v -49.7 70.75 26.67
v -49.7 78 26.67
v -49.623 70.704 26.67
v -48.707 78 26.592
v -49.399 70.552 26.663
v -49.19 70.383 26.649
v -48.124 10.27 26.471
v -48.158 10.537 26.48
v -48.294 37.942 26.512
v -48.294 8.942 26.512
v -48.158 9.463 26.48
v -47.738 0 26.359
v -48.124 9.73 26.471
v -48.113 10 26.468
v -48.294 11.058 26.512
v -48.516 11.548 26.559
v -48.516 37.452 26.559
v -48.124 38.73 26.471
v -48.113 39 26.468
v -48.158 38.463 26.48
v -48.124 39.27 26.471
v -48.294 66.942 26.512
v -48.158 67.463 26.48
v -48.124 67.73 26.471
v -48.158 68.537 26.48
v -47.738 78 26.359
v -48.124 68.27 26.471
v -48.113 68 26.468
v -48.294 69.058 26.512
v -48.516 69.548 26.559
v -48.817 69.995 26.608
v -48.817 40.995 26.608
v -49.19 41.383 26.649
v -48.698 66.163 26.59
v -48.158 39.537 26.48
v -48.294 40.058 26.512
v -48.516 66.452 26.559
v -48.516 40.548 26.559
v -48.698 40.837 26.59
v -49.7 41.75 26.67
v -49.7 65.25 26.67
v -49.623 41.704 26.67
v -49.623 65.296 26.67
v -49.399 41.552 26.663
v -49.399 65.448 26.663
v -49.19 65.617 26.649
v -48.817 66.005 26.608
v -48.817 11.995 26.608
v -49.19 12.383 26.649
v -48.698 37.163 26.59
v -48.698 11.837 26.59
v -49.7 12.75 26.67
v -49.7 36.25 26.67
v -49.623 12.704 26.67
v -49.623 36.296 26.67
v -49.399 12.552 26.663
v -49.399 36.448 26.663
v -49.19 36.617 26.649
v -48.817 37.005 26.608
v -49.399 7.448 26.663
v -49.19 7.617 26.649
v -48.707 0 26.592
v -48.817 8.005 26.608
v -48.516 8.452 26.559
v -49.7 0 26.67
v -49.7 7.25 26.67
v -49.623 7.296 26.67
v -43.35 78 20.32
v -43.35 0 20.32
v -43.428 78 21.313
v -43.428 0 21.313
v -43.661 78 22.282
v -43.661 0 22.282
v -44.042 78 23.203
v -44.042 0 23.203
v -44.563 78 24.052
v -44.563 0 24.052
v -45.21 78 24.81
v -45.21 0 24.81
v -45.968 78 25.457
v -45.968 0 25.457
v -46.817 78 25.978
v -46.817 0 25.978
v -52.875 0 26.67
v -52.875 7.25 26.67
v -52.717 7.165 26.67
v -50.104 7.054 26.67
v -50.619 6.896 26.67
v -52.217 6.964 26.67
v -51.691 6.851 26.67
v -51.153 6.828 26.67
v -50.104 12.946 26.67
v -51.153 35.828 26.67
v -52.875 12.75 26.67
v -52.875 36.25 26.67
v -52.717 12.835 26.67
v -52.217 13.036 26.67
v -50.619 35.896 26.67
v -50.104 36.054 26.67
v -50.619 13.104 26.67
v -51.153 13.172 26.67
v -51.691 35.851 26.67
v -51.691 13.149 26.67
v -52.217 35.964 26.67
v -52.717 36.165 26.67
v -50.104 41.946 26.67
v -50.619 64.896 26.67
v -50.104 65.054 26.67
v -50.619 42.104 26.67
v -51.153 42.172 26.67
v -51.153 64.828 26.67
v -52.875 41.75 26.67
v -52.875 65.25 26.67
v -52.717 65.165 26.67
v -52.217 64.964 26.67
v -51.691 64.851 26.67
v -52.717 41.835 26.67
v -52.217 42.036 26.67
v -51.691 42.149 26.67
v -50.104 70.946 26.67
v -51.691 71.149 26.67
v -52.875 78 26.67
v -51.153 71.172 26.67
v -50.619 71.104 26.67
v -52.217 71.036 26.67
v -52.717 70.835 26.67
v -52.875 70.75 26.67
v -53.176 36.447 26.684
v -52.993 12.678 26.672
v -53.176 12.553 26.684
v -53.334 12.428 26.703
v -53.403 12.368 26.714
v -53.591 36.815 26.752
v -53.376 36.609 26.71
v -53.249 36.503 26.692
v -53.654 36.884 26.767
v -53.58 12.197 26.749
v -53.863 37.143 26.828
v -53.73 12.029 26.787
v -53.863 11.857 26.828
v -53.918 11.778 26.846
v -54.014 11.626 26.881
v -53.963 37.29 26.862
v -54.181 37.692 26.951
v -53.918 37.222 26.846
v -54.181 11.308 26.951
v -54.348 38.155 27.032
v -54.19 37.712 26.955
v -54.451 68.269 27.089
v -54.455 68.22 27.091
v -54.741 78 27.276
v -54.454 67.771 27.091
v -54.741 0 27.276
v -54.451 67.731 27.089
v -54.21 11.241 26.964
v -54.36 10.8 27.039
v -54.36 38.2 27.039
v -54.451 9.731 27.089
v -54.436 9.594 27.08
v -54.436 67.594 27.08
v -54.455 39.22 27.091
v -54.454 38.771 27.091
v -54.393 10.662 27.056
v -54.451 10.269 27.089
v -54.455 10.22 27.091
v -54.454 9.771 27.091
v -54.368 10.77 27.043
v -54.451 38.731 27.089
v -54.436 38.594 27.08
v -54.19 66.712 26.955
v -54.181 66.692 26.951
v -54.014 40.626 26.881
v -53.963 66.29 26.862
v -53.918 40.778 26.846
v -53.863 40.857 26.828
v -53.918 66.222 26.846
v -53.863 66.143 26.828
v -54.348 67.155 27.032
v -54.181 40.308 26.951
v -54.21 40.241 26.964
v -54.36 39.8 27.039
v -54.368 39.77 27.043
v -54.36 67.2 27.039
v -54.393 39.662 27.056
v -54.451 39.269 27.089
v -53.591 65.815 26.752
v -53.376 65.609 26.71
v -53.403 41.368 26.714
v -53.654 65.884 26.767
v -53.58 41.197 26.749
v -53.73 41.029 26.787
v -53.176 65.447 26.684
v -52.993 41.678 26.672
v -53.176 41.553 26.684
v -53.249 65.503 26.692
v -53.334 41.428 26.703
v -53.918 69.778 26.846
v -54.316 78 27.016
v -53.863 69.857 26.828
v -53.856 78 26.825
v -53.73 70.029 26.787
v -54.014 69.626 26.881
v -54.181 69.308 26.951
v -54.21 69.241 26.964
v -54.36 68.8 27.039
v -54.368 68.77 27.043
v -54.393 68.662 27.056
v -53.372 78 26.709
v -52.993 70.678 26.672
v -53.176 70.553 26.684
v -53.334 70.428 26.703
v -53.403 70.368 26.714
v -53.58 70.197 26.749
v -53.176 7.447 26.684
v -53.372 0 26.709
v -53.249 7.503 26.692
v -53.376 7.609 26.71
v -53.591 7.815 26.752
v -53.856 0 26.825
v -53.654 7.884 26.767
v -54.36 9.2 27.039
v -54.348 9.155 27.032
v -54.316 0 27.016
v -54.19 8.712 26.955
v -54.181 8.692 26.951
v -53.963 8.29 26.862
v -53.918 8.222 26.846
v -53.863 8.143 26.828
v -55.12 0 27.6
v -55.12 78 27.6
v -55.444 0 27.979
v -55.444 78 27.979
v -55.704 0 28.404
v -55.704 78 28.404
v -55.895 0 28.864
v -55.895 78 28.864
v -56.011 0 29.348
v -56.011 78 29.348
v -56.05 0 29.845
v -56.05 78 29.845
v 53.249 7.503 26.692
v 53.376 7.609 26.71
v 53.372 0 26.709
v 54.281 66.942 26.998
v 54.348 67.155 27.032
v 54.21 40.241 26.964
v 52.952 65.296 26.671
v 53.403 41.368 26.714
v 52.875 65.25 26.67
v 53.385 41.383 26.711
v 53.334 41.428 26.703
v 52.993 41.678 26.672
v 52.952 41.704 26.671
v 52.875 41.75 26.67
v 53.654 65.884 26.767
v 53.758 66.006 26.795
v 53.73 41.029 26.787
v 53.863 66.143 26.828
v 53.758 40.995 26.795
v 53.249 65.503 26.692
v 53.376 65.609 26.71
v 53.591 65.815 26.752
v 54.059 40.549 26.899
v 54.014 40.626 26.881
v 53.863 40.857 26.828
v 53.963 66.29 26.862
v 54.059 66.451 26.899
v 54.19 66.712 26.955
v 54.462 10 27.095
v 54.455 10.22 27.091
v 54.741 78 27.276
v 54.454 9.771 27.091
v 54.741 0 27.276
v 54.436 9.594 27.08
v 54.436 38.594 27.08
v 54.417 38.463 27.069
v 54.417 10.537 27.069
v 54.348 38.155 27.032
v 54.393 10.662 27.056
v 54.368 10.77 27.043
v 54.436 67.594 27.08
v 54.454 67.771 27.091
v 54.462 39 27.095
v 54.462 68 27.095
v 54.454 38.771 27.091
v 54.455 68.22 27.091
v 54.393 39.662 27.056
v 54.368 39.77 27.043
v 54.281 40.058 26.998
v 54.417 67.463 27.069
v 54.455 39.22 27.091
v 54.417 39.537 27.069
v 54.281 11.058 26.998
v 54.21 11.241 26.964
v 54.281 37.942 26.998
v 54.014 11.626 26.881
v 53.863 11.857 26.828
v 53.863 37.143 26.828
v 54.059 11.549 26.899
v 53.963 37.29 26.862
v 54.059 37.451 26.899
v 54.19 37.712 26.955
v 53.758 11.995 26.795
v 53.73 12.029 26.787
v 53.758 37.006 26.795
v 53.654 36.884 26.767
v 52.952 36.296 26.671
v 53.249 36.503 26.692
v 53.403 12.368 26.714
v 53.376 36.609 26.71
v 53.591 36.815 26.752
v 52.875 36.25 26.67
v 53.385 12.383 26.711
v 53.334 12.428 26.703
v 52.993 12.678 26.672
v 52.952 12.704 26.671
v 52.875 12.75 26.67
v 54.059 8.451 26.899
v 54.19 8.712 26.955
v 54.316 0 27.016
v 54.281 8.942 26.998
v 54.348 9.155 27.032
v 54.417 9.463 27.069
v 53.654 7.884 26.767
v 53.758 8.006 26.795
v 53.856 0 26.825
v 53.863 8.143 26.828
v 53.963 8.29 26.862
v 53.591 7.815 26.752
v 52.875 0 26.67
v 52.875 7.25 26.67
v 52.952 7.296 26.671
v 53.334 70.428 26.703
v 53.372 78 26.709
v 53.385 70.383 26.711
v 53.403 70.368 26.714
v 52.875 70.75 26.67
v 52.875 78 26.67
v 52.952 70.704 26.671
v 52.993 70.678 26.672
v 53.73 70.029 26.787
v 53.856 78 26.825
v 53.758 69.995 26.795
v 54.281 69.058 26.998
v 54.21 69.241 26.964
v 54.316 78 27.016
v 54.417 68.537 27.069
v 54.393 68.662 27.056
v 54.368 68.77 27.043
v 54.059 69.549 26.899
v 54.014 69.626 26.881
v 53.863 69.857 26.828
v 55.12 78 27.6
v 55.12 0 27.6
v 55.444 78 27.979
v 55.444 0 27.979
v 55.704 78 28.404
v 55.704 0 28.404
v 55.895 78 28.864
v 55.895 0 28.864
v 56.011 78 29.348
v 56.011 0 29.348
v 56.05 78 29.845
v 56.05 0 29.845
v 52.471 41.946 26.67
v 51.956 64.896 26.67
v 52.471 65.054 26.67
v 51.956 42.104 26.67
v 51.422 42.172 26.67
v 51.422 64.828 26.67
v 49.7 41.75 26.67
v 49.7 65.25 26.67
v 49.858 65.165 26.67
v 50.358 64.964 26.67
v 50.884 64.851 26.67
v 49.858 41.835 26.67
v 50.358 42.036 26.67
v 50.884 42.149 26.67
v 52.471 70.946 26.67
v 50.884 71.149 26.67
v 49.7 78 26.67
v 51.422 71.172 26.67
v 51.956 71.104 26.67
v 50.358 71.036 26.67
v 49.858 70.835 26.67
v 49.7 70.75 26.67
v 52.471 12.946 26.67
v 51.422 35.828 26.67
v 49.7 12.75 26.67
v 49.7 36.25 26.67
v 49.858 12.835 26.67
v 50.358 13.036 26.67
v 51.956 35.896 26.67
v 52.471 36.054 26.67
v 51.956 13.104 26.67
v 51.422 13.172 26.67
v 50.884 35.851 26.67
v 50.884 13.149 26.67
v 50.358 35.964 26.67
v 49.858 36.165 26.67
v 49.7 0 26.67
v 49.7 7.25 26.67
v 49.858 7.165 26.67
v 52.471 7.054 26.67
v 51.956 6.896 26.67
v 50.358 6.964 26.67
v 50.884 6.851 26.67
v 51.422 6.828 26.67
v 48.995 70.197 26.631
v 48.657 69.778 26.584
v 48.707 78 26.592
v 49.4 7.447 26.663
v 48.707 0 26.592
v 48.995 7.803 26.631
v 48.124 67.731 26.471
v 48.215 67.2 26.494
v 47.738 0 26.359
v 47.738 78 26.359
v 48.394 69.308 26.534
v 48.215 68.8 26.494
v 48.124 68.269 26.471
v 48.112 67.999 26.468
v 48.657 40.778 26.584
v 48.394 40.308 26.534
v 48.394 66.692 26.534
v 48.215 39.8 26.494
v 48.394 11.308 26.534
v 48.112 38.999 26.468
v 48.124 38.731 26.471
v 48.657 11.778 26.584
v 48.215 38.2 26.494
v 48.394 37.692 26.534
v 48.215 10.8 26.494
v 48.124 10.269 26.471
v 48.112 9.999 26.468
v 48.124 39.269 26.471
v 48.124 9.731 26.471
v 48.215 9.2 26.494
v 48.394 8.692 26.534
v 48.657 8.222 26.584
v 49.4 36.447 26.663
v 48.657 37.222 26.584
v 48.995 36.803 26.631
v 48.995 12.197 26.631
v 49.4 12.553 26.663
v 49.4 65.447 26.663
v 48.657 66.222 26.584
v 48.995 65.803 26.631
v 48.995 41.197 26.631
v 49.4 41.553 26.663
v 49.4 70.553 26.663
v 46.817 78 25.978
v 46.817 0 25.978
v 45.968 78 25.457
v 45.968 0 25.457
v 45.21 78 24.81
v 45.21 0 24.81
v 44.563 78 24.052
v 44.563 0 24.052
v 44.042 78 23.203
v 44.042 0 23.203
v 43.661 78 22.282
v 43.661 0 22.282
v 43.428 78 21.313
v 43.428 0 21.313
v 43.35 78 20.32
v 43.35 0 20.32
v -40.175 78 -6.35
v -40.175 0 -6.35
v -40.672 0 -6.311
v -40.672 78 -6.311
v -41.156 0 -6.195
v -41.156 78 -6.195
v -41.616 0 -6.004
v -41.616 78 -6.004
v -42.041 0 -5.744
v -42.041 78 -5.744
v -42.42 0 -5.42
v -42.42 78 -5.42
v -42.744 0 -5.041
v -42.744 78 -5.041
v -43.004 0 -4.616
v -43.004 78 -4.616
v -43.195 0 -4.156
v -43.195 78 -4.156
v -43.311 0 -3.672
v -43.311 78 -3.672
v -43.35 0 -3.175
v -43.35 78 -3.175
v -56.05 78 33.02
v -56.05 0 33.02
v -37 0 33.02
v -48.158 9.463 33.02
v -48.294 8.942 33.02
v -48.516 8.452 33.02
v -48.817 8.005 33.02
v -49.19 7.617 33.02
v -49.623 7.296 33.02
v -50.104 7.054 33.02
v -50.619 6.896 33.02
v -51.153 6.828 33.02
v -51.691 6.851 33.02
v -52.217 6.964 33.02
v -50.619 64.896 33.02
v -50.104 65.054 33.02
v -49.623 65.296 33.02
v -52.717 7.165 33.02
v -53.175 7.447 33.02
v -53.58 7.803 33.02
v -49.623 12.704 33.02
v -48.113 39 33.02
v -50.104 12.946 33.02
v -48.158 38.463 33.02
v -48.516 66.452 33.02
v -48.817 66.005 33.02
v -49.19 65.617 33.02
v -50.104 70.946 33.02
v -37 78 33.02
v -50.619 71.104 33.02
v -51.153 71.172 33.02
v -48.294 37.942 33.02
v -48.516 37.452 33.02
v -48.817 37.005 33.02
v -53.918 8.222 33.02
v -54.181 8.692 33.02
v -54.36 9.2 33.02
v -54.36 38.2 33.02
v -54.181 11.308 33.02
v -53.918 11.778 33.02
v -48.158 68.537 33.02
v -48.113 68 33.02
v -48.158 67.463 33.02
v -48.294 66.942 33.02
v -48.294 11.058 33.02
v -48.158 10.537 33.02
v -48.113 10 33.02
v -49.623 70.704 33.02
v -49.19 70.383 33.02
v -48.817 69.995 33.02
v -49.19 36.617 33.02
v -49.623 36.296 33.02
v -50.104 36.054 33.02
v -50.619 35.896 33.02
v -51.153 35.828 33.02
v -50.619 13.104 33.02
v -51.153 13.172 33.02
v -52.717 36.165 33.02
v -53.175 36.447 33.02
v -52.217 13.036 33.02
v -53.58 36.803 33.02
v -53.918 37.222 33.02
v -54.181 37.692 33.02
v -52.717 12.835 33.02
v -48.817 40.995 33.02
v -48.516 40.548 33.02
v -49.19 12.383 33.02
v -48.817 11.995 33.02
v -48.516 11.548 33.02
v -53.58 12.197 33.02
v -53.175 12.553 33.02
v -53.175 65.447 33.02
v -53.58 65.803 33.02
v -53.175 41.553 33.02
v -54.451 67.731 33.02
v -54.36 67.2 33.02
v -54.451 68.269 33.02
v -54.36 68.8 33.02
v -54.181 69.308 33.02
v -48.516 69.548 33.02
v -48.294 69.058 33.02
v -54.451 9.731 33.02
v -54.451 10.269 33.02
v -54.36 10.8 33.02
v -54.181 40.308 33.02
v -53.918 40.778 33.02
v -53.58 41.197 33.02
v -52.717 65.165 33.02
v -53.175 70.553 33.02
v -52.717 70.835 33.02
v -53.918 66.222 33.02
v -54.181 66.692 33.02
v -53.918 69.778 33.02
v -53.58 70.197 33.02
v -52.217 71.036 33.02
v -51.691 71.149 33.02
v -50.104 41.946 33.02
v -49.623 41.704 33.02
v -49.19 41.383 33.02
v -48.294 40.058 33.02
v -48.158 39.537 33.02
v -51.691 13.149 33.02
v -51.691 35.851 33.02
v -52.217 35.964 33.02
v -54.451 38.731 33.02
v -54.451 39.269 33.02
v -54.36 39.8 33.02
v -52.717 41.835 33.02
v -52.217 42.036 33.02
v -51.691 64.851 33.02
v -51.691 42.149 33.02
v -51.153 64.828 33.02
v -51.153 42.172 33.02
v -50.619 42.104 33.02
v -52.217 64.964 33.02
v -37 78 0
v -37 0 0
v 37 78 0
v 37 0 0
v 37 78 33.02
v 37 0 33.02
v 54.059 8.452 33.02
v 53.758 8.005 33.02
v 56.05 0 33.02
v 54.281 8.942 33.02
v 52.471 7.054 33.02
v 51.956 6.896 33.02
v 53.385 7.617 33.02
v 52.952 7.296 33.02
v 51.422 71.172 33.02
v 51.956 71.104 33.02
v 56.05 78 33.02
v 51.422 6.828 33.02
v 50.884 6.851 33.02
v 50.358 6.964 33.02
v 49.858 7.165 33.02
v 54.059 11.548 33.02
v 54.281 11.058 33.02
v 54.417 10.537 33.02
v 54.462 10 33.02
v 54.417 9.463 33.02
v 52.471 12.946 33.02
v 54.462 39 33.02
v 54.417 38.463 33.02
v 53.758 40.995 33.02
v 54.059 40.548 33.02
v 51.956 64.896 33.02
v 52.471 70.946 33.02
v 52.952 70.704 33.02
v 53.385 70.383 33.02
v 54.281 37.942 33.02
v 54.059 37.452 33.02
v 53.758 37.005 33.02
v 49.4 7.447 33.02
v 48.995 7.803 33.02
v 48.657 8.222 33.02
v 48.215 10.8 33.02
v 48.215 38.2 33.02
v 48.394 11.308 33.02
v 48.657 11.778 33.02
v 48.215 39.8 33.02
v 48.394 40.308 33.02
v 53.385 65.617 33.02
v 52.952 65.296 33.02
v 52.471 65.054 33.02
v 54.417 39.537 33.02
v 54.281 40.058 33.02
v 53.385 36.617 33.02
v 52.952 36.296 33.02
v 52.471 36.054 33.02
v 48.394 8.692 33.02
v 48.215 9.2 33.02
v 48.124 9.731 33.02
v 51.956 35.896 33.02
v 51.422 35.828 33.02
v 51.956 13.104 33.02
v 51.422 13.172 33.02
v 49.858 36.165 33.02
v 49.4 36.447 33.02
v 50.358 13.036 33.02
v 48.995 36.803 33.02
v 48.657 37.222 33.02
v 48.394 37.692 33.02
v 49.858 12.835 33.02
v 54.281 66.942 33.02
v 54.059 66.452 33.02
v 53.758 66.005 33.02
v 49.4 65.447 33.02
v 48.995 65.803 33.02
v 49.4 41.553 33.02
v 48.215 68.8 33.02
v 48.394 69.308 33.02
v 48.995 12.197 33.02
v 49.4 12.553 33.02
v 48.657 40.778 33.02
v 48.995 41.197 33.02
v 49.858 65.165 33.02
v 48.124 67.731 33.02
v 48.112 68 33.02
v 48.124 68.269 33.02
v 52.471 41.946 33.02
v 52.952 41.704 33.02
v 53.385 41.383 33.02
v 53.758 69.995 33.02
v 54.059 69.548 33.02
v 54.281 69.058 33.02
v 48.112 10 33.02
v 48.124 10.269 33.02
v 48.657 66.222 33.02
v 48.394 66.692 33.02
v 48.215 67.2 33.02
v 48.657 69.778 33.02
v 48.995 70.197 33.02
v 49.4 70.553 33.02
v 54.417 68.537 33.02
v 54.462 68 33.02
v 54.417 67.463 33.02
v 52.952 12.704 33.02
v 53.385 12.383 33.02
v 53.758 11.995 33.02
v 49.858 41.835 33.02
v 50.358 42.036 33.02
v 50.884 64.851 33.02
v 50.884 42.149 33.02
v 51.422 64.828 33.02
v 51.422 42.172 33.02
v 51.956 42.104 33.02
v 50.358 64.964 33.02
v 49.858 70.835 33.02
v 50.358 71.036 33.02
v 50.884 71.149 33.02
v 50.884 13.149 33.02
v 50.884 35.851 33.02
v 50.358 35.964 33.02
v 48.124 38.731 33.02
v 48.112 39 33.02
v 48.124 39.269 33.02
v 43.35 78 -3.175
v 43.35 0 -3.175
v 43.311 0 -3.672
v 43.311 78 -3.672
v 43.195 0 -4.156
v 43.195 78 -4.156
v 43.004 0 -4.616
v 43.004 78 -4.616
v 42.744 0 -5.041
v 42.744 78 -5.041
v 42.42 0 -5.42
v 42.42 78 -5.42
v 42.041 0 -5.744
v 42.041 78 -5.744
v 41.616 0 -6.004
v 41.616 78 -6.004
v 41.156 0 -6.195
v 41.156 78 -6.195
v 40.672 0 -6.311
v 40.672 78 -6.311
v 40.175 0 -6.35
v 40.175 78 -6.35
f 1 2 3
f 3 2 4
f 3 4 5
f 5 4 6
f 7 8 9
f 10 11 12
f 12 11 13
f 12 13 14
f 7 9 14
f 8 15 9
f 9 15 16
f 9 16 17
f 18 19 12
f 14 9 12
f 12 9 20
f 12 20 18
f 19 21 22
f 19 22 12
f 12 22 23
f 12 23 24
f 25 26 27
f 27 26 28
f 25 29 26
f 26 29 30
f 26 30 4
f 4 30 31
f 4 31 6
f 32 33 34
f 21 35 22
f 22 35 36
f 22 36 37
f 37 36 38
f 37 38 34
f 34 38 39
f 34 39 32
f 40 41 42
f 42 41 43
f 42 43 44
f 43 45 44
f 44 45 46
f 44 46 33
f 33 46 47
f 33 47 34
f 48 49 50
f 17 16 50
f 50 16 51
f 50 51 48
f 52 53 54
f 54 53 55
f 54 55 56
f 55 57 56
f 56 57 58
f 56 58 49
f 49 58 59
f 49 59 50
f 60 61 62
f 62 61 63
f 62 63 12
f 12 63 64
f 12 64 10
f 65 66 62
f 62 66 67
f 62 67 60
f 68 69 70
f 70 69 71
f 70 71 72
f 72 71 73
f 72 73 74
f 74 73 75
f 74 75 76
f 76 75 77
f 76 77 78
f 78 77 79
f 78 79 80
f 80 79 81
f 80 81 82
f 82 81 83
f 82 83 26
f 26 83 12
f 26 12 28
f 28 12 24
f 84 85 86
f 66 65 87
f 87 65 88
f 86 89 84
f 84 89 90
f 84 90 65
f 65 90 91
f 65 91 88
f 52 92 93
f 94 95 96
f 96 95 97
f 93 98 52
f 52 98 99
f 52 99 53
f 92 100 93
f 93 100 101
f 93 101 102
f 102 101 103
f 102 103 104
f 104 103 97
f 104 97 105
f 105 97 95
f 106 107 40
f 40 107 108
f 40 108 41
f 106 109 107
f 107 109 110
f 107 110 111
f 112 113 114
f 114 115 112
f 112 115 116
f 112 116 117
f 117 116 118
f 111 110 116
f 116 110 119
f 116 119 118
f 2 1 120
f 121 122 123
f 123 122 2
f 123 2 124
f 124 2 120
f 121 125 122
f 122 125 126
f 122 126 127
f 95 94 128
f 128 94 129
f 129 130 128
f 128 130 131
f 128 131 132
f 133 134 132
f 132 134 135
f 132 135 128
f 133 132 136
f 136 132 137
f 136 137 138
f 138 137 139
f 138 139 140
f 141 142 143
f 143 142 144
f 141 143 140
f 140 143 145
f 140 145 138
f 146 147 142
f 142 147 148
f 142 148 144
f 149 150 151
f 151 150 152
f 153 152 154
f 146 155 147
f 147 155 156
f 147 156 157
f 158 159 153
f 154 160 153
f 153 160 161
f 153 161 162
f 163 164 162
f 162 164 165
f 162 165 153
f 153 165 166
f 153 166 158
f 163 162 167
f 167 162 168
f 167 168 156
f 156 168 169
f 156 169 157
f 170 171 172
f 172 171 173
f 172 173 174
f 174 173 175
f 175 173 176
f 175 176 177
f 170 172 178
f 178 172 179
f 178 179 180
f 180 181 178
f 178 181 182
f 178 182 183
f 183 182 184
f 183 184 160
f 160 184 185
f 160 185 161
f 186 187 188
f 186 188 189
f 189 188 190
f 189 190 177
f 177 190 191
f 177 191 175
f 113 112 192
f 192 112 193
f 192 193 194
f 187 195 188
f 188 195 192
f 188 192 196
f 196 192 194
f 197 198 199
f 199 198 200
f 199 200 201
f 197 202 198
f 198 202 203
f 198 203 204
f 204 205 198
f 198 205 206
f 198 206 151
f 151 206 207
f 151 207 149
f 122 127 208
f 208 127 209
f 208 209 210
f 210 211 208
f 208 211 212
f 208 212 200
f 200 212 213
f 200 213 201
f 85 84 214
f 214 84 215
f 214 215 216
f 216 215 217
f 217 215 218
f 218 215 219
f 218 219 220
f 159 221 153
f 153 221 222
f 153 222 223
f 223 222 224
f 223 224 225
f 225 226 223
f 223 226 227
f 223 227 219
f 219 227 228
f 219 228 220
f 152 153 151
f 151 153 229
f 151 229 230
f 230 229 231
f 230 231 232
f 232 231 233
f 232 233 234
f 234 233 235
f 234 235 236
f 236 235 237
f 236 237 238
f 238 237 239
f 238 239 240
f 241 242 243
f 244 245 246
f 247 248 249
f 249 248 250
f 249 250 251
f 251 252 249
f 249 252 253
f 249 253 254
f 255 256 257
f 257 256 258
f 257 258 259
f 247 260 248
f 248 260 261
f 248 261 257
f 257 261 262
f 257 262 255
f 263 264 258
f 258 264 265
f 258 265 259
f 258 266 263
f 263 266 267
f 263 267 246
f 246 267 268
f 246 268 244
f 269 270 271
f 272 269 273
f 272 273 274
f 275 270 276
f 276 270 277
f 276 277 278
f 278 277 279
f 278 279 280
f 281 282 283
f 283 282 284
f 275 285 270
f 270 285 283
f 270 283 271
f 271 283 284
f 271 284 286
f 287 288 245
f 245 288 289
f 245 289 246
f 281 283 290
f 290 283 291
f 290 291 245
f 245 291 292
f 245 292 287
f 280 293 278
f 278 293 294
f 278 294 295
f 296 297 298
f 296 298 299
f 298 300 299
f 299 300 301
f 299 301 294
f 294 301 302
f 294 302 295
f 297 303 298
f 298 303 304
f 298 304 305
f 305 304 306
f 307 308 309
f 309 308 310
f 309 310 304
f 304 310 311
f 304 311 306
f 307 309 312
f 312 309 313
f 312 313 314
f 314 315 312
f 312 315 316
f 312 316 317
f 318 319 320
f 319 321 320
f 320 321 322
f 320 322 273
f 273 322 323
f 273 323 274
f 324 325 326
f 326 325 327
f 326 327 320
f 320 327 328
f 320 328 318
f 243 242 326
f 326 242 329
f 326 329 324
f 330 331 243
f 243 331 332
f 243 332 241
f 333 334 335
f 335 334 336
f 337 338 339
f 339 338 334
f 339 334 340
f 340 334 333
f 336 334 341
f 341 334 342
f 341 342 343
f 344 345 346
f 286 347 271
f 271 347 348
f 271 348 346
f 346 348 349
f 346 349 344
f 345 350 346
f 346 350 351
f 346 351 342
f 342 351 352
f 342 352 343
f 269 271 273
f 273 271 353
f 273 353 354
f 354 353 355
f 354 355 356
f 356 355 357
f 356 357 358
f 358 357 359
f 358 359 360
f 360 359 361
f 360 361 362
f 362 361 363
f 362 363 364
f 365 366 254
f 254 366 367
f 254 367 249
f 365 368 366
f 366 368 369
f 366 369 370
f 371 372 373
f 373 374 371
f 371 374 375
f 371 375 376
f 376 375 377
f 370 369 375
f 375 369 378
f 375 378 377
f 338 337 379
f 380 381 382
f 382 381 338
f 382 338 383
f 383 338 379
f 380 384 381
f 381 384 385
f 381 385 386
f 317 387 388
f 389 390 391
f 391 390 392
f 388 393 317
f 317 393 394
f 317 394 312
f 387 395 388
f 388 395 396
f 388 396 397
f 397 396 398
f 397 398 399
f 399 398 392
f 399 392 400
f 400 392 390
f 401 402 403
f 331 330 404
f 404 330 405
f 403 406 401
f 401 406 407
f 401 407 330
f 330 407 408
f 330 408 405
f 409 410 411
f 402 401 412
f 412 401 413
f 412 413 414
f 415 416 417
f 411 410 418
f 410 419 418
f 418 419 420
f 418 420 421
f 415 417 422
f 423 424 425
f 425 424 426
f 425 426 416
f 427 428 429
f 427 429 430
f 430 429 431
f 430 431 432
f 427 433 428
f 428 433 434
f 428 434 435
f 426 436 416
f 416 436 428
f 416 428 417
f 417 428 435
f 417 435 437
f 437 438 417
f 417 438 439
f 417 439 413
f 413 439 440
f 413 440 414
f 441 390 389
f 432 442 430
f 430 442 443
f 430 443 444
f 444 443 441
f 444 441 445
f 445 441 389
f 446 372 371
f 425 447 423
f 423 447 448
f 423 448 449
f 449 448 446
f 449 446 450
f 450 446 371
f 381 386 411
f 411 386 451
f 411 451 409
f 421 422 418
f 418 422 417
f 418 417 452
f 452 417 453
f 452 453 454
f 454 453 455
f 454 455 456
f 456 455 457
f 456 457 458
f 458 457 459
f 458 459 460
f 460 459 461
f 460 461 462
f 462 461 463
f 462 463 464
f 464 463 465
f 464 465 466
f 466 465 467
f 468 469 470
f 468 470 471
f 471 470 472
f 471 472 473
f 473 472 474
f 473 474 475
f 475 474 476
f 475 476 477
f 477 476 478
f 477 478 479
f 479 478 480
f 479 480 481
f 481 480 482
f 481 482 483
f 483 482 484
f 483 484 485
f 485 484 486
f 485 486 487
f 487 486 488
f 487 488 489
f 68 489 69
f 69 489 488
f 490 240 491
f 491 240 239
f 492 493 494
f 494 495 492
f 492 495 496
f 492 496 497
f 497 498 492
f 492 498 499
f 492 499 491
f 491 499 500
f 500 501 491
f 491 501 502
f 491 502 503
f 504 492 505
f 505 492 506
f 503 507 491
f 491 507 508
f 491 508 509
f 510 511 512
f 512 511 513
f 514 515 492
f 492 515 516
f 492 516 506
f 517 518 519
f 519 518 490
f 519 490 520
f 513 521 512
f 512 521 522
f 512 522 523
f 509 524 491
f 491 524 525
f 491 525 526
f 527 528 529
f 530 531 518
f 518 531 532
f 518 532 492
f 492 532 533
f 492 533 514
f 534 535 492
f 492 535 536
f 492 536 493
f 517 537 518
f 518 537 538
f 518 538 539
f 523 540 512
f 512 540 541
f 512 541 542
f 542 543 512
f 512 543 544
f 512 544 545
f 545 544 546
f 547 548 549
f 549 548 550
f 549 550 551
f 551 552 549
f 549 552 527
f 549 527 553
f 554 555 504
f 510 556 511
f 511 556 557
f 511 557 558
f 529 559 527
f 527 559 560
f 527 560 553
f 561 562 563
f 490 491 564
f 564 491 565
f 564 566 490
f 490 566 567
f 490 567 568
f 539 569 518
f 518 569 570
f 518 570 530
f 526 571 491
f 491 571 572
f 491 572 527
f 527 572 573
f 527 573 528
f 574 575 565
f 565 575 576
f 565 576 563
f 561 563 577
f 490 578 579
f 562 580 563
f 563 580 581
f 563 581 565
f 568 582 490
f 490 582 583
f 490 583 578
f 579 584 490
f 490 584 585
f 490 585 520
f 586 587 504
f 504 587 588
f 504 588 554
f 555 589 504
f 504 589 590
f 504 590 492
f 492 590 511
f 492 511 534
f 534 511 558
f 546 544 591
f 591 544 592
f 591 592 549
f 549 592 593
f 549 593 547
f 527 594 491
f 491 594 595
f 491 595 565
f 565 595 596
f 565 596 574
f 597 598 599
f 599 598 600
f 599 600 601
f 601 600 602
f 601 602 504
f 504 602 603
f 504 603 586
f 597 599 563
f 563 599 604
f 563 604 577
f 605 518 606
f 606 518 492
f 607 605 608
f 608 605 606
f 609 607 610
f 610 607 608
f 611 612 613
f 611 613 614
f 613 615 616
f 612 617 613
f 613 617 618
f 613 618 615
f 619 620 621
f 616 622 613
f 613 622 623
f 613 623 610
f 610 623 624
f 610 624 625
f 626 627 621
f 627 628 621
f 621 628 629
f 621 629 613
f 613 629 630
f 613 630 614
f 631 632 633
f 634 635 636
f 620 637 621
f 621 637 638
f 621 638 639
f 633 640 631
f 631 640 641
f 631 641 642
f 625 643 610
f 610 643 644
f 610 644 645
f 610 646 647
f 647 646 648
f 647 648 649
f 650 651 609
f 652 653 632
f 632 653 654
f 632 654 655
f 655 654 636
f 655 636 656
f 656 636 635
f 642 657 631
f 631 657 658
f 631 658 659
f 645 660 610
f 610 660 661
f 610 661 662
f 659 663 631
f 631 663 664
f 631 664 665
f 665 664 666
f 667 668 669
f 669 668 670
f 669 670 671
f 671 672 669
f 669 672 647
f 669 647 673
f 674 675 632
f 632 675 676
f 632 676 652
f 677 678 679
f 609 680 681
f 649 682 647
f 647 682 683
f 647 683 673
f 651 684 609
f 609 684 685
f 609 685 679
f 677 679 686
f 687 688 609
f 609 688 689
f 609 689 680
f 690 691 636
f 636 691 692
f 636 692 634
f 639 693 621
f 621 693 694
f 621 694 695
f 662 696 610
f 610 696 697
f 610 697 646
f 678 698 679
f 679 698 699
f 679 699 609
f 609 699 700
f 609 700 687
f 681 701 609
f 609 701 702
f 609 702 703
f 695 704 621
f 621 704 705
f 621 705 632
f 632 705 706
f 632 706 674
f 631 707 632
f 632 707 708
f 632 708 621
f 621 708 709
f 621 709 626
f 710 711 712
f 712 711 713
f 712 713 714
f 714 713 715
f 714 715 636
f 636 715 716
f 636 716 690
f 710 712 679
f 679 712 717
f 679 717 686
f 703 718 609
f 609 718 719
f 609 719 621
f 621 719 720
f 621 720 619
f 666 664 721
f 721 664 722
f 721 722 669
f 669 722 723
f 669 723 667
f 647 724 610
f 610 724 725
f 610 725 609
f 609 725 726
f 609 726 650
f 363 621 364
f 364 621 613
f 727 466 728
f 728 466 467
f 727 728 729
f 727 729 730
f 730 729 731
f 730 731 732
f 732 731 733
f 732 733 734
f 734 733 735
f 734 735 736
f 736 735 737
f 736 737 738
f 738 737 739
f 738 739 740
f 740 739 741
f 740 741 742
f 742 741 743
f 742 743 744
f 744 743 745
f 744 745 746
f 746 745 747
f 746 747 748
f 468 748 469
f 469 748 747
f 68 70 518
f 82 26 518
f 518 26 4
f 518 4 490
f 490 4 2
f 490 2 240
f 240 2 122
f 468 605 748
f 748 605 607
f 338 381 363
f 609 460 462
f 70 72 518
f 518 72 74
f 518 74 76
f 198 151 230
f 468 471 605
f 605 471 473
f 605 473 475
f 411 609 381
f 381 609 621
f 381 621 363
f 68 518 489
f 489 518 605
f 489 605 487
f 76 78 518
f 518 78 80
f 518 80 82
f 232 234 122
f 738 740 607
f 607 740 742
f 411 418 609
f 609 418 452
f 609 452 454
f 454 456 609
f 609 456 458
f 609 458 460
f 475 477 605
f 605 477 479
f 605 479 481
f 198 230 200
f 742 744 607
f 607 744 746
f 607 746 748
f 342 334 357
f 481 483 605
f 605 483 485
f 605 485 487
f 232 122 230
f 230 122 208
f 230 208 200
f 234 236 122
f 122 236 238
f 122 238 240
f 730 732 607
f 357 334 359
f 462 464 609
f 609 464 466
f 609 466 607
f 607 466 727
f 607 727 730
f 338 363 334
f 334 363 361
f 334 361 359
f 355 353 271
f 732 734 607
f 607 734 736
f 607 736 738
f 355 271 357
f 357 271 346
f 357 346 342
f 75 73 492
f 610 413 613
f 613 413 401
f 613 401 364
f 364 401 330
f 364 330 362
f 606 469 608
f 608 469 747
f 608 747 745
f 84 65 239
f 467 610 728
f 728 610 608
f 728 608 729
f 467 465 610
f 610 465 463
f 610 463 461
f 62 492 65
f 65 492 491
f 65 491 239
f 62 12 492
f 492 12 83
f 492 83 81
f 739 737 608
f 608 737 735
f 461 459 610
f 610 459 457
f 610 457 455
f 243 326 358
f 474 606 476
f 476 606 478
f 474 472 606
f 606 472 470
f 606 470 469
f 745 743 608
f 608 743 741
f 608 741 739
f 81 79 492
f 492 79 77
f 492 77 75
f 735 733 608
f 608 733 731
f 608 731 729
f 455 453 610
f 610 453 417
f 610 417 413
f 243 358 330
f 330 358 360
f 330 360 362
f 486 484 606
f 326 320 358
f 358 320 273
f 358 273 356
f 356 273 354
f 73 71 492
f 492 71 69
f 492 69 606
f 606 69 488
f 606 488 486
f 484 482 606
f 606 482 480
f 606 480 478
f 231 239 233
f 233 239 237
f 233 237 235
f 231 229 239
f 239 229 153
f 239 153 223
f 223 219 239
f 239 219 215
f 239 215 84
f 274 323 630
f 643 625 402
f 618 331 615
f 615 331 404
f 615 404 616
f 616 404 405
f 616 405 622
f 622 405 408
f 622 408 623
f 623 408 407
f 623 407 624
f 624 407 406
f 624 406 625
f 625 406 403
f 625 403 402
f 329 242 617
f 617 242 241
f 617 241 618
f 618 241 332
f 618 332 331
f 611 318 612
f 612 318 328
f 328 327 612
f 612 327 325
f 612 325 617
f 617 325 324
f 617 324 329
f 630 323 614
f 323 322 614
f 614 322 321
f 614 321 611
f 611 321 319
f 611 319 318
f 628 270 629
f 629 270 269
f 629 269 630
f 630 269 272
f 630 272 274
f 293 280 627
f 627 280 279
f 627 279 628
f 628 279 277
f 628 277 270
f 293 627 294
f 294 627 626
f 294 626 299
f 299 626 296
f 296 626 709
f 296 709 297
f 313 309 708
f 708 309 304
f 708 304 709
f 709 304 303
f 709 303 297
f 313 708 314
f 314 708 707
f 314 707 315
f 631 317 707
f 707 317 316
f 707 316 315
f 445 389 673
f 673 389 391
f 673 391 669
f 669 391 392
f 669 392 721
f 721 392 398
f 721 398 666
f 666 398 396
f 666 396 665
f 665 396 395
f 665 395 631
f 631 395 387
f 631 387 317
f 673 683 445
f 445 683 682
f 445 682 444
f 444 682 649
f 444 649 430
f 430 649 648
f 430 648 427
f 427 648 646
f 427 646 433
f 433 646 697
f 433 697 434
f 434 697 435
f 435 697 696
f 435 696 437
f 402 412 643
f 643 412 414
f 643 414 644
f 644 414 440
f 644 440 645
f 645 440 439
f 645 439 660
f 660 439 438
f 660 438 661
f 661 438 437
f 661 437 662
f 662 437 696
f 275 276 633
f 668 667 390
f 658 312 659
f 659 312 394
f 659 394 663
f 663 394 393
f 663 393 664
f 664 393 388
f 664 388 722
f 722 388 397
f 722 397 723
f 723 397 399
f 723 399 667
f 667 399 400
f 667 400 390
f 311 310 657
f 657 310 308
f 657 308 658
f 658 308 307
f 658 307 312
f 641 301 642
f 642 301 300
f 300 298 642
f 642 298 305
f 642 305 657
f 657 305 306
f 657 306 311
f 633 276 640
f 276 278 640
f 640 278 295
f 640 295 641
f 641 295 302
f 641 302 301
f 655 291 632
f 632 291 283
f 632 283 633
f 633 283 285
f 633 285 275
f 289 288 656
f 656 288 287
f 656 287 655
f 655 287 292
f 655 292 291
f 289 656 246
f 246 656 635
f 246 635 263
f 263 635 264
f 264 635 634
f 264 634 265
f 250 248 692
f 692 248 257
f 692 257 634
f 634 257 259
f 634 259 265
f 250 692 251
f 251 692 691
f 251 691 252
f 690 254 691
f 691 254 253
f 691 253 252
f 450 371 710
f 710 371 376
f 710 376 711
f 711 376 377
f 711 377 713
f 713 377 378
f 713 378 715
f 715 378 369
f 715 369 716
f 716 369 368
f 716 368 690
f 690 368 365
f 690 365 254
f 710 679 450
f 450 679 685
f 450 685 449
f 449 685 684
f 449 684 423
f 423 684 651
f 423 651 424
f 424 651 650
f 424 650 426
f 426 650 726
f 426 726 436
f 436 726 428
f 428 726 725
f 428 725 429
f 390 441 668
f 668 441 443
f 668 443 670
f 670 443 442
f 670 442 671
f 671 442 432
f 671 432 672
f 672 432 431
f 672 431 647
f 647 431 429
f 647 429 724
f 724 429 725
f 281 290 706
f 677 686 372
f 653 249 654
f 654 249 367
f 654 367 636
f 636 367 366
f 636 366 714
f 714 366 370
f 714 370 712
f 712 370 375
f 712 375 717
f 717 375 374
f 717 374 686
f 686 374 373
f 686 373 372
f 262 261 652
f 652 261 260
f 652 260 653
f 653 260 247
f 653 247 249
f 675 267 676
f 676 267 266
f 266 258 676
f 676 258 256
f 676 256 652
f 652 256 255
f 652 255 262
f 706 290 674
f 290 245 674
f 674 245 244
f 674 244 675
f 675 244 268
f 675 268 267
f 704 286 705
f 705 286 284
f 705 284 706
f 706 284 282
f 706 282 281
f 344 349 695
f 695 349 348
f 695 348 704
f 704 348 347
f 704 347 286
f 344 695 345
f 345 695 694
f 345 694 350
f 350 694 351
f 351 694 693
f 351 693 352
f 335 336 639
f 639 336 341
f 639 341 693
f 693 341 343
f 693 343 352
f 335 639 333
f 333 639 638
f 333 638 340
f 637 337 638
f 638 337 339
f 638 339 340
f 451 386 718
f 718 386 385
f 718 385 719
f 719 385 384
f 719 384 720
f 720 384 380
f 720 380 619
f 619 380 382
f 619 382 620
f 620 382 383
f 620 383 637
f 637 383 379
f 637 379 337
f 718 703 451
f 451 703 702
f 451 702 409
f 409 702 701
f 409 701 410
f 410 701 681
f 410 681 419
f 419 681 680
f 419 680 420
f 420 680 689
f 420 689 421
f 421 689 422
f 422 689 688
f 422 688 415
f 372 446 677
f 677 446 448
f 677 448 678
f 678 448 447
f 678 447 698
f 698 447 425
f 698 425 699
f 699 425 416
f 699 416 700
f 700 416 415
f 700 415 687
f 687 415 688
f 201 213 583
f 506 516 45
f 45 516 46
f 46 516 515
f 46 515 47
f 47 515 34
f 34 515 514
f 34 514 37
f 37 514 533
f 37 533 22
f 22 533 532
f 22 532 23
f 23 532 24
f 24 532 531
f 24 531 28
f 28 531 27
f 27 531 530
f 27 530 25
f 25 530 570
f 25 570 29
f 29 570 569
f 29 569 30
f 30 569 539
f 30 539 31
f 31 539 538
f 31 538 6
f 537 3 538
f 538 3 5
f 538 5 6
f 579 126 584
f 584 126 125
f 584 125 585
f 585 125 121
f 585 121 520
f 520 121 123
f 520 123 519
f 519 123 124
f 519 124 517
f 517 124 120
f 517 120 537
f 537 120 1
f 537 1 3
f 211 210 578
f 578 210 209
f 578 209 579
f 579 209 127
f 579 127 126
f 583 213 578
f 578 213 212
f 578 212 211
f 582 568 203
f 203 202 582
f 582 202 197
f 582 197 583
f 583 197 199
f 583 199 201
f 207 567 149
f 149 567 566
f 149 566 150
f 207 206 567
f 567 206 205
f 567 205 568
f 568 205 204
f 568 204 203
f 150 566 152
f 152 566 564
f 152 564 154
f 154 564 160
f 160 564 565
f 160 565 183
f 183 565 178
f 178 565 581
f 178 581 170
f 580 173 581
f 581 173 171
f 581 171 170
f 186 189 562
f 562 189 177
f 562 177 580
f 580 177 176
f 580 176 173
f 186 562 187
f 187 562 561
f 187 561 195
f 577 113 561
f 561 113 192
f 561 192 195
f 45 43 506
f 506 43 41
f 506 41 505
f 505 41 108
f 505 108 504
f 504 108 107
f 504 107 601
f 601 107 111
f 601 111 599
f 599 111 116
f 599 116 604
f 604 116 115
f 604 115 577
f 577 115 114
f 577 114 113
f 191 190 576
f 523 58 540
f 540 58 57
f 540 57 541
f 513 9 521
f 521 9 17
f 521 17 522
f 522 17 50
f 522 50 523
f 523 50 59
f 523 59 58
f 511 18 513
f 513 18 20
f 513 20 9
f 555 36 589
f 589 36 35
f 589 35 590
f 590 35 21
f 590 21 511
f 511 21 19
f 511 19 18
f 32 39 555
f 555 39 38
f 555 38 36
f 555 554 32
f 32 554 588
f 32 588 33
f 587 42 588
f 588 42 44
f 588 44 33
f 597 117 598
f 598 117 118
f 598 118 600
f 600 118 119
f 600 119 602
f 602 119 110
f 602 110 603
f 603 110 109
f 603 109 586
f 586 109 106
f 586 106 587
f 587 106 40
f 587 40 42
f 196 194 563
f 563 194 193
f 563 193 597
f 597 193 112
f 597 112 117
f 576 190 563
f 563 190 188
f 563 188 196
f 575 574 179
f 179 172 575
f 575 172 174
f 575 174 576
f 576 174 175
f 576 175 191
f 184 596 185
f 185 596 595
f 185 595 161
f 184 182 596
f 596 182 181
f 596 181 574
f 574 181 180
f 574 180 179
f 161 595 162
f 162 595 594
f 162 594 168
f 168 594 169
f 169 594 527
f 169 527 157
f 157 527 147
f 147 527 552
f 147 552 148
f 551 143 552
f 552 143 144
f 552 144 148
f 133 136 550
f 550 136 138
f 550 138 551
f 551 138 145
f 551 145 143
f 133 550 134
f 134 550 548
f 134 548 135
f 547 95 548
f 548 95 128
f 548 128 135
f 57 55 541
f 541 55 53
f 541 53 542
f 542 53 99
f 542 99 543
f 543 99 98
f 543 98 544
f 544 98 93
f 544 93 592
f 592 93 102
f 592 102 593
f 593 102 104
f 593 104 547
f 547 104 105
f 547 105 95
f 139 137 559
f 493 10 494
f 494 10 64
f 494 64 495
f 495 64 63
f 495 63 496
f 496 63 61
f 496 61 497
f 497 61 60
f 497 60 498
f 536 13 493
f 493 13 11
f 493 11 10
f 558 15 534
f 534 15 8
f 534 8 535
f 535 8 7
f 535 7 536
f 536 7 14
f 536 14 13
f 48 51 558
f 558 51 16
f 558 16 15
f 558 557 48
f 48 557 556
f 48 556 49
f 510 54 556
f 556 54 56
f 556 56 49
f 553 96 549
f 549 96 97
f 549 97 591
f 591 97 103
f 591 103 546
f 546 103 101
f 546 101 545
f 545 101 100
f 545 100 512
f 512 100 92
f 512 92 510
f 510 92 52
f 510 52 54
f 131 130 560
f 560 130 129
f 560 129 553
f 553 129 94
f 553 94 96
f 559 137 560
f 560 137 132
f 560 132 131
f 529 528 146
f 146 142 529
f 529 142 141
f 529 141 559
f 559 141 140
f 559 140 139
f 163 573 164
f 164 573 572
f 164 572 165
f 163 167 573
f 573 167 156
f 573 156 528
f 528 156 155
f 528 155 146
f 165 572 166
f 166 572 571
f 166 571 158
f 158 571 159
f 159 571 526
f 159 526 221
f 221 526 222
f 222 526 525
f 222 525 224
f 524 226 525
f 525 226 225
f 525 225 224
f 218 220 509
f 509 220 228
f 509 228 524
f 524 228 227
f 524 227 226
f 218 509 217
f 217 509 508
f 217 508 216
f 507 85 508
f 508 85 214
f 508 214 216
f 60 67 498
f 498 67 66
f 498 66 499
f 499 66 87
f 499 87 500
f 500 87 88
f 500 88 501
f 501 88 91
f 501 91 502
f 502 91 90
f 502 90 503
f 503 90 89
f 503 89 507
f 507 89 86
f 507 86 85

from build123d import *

# Parameters (mm, degrees)
BOSS_EXTRUDE1_DEPTH            = 78
CUT_EXTRUDE1_REACH             = 103.567
SKETCH2_R                      = 3.175
CUT_EXTRUDE1_DIRECTION_2_REACH = 103.567


with BuildPart() as part:
    # Sketch1 → Boss-Extrude1 (new body)
    with BuildSketch(Plane(origin=(0, 0, 0), x_dir=(1, 0, 0), z_dir=(0, 1, 0))):
        with BuildLine():
            Line((-37, -33.02), (-37, 0))
            Line((-37, 0), (37, 0))
            Line((37, 0), (37, -33.02))
            Line((37, -33.02), (56.05, -33.02))
            Line((56.05, -33.02), (56.05, -29.845))
            ThreePointArc((56.05, -29.845), (55.12006403, -27.59993597), (52.875, -26.67))
            Line((52.875, -26.67), (49.7, -26.67))
            ThreePointArc((49.7, -26.67), (45.209871939, -24.810128061), (43.35, -20.32))
            Line((43.35, -20.32), (43.35, 0))
            Line((43.35, 0), (43.35, 3.175))
            ThreePointArc((43.35, 3.175), (42.42006403, 5.42006403), (40.175, 6.35))
            Line((40.175, 6.35), (-40.175, 6.35))
            ThreePointArc((-40.175, 6.35), (-42.42006403, 5.42006403), (-43.35, 3.175))
            Line((-43.35, 3.175), (-43.35, 0))
            Line((-43.35, 0), (-43.35, -20.32))
            ThreePointArc((-43.35, -20.32), (-45.209871939, -24.810128061), (-49.7, -26.67))
            Line((-49.7, -26.67), (-52.875, -26.67))
            ThreePointArc((-52.875, -26.67), (-55.12006403, -27.59993597), (-56.05, -29.845))
            Line((-56.05, -29.845), (-56.05, -33.02))
            Line((-56.05, -33.02), (-37, -33.02))
        make_face()
    extrude(amount=BOSS_EXTRUDE1_DEPTH)

    # Sketch2 → Cut-Extrude1 (cut, up to next)
    with BuildSketch(Plane(origin=(0, 0, 26.67), x_dir=(-1, 0, 0), z_dir=(0, 0, -1)), mode=Mode.PRIVATE) as cut_extrude1_sk1:
        with Locations(Location((-51.2875, 10, 0), (0, 0, 240))):
            Circle(SKETCH2_R)
    cut_extrude1_tool1 = extrude(cut_extrude1_sk1.sketch, amount=-CUT_EXTRUDE1_REACH, mode=Mode.PRIVATE) & part.part
    # Sketch2 → Cut-Extrude1 (cut, up to next)
    with BuildSketch(Plane(origin=(0, 0, 26.67), x_dir=(-1, 0, 0), z_dir=(0, 0, -1)), mode=Mode.PRIVATE) as cut_extrude1_sk2:
        with Locations(Location((-51.2875, 39, 0), (0, 0, 240))):
            Circle(SKETCH2_R)
    cut_extrude1_tool2 = extrude(cut_extrude1_sk2.sketch, amount=-CUT_EXTRUDE1_REACH, mode=Mode.PRIVATE) & part.part
    # Sketch2 → Cut-Extrude1 (cut, up to next)
    with BuildSketch(Plane(origin=(0, 0, 26.67), x_dir=(-1, 0, 0), z_dir=(0, 0, -1)), mode=Mode.PRIVATE) as cut_extrude1_sk3:
        with Locations(Location((-51.2875, 68, 0), (0, 0, 240))):
            Circle(SKETCH2_R)
    cut_extrude1_tool3 = extrude(cut_extrude1_sk3.sketch, amount=-CUT_EXTRUDE1_REACH, mode=Mode.PRIVATE) & part.part
    # Sketch2 → Cut-Extrude1 (cut, up to next)
    with BuildSketch(Plane(origin=(0, 0, 26.67), x_dir=(-1, 0, 0), z_dir=(0, 0, -1)), mode=Mode.PRIVATE) as cut_extrude1_sk4:
        with Locations(Location((51.2875, 68, 0), (0, 0, 180))):
            Circle(SKETCH2_R)
    cut_extrude1_tool4 = extrude(cut_extrude1_sk4.sketch, amount=-CUT_EXTRUDE1_REACH, mode=Mode.PRIVATE) & part.part
    # Sketch2 → Cut-Extrude1 (cut, up to next)
    with BuildSketch(Plane(origin=(0, 0, 26.67), x_dir=(-1, 0, 0), z_dir=(0, 0, -1)), mode=Mode.PRIVATE) as cut_extrude1_sk5:
        with Locations(Location((51.2875, 39, 0), (0, 0, 180))):
            Circle(SKETCH2_R)
    cut_extrude1_tool5 = extrude(cut_extrude1_sk5.sketch, amount=-CUT_EXTRUDE1_REACH, mode=Mode.PRIVATE) & part.part
    # Sketch2 → Cut-Extrude1 (cut, up to next)
    with BuildSketch(Plane(origin=(0, 0, 26.67), x_dir=(-1, 0, 0), z_dir=(0, 0, -1)), mode=Mode.PRIVATE) as cut_extrude1_sk6:
        with Locations(Location((51.2875, 10, 0), (0, 0, 180))):
            Circle(SKETCH2_R)
    cut_extrude1_tool6 = extrude(cut_extrude1_sk6.sketch, amount=-CUT_EXTRUDE1_REACH, mode=Mode.PRIVATE) & part.part
    add(cut_extrude1_tool1.solids().sort_by_distance((51.2875, 10, 26.67))[0], mode=Mode.SUBTRACT)
    add(cut_extrude1_tool2.solids().sort_by_distance((51.2875, 39, 26.67))[0], mode=Mode.SUBTRACT)
    add(cut_extrude1_tool3.solids().sort_by_distance((51.2875, 68, 26.67))[0], mode=Mode.SUBTRACT)
    add(cut_extrude1_tool4.solids().sort_by_distance((-51.2875, 68, 26.67))[0], mode=Mode.SUBTRACT)
    add(cut_extrude1_tool5.solids().sort_by_distance((-51.2875, 39, 26.67))[0], mode=Mode.SUBTRACT)
    add(cut_extrude1_tool6.solids().sort_by_distance((-51.2875, 10, 26.67))[0], mode=Mode.SUBTRACT)

    # Cut-Extrude1 direction 2: up to this face of the body (flat: up to its plane)
    cut_extrude1_direction_2_end = Plane(part.part.faces().sort_by_distance((0, 39, -6.35))[0])
    # Sketch2 → Cut-Extrude1 direction 2 (cut, up to the picked face)
    with BuildSketch(Plane(origin=(0, 0, 26.67), x_dir=(-1, 0, 0), z_dir=(0, 0, -1)), mode=Mode.PRIVATE) as cut_extrude1_direction_2_sk1:
        with Locations(Location((-51.2875, 10, 0), (0, 0, 240))):
            Circle(SKETCH2_R)
    cut_extrude1_direction_2_tool1 = split(extrude(cut_extrude1_direction_2_sk1.sketch, amount=CUT_EXTRUDE1_DIRECTION_2_REACH, mode=Mode.PRIVATE), bisect_by=cut_extrude1_direction_2_end, keep=Keep.BOTH, mode=Mode.PRIVATE)
    # Sketch2 → Cut-Extrude1 direction 2 (cut, up to the picked face)
    with BuildSketch(Plane(origin=(0, 0, 26.67), x_dir=(-1, 0, 0), z_dir=(0, 0, -1)), mode=Mode.PRIVATE) as cut_extrude1_direction_2_sk2:
        with Locations(Location((-51.2875, 39, 0), (0, 0, 240))):
            Circle(SKETCH2_R)
    cut_extrude1_direction_2_tool2 = split(extrude(cut_extrude1_direction_2_sk2.sketch, amount=CUT_EXTRUDE1_DIRECTION_2_REACH, mode=Mode.PRIVATE), bisect_by=cut_extrude1_direction_2_end, keep=Keep.BOTH, mode=Mode.PRIVATE)
    # Sketch2 → Cut-Extrude1 direction 2 (cut, up to the picked face)
    with BuildSketch(Plane(origin=(0, 0, 26.67), x_dir=(-1, 0, 0), z_dir=(0, 0, -1)), mode=Mode.PRIVATE) as cut_extrude1_direction_2_sk3:
        with Locations(Location((-51.2875, 68, 0), (0, 0, 240))):
            Circle(SKETCH2_R)
    cut_extrude1_direction_2_tool3 = split(extrude(cut_extrude1_direction_2_sk3.sketch, amount=CUT_EXTRUDE1_DIRECTION_2_REACH, mode=Mode.PRIVATE), bisect_by=cut_extrude1_direction_2_end, keep=Keep.BOTH, mode=Mode.PRIVATE)
    # Sketch2 → Cut-Extrude1 direction 2 (cut, up to the picked face)
    with BuildSketch(Plane(origin=(0, 0, 26.67), x_dir=(-1, 0, 0), z_dir=(0, 0, -1)), mode=Mode.PRIVATE) as cut_extrude1_direction_2_sk4:
        with Locations(Location((51.2875, 68, 0), (0, 0, 180))):
            Circle(SKETCH2_R)
    cut_extrude1_direction_2_tool4 = split(extrude(cut_extrude1_direction_2_sk4.sketch, amount=CUT_EXTRUDE1_DIRECTION_2_REACH, mode=Mode.PRIVATE), bisect_by=cut_extrude1_direction_2_end, keep=Keep.BOTH, mode=Mode.PRIVATE)
    # Sketch2 → Cut-Extrude1 direction 2 (cut, up to the picked face)
    with BuildSketch(Plane(origin=(0, 0, 26.67), x_dir=(-1, 0, 0), z_dir=(0, 0, -1)), mode=Mode.PRIVATE) as cut_extrude1_direction_2_sk5:
        with Locations(Location((51.2875, 39, 0), (0, 0, 180))):
            Circle(SKETCH2_R)
    cut_extrude1_direction_2_tool5 = split(extrude(cut_extrude1_direction_2_sk5.sketch, amount=CUT_EXTRUDE1_DIRECTION_2_REACH, mode=Mode.PRIVATE), bisect_by=cut_extrude1_direction_2_end, keep=Keep.BOTH, mode=Mode.PRIVATE)
    # Sketch2 → Cut-Extrude1 direction 2 (cut, up to the picked face)
    with BuildSketch(Plane(origin=(0, 0, 26.67), x_dir=(-1, 0, 0), z_dir=(0, 0, -1)), mode=Mode.PRIVATE) as cut_extrude1_direction_2_sk6:
        with Locations(Location((51.2875, 10, 0), (0, 0, 180))):
            Circle(SKETCH2_R)
    cut_extrude1_direction_2_tool6 = split(extrude(cut_extrude1_direction_2_sk6.sketch, amount=CUT_EXTRUDE1_DIRECTION_2_REACH, mode=Mode.PRIVATE), bisect_by=cut_extrude1_direction_2_end, keep=Keep.BOTH, mode=Mode.PRIVATE)
    add(cut_extrude1_direction_2_tool1.solids().sort_by(Axis((51.2875, 10, 26.67), (0, 0, -1)))[0], mode=Mode.SUBTRACT)
    add(cut_extrude1_direction_2_tool2.solids().sort_by(Axis((51.2875, 39, 26.67), (0, 0, -1)))[0], mode=Mode.SUBTRACT)
    add(cut_extrude1_direction_2_tool3.solids().sort_by(Axis((51.2875, 68, 26.67), (0, 0, -1)))[0], mode=Mode.SUBTRACT)
    add(cut_extrude1_direction_2_tool4.solids().sort_by(Axis((-51.2875, 68, 26.67), (0, 0, -1)))[0], mode=Mode.SUBTRACT)
    add(cut_extrude1_direction_2_tool5.solids().sort_by(Axis((-51.2875, 39, 26.67), (0, 0, -1)))[0], mode=Mode.SUBTRACT)
    add(cut_extrude1_direction_2_tool6.solids().sort_by(Axis((-51.2875, 10, 26.67), (0, 0, -1)))[0], mode=Mode.SUBTRACT)


solid = part.part
